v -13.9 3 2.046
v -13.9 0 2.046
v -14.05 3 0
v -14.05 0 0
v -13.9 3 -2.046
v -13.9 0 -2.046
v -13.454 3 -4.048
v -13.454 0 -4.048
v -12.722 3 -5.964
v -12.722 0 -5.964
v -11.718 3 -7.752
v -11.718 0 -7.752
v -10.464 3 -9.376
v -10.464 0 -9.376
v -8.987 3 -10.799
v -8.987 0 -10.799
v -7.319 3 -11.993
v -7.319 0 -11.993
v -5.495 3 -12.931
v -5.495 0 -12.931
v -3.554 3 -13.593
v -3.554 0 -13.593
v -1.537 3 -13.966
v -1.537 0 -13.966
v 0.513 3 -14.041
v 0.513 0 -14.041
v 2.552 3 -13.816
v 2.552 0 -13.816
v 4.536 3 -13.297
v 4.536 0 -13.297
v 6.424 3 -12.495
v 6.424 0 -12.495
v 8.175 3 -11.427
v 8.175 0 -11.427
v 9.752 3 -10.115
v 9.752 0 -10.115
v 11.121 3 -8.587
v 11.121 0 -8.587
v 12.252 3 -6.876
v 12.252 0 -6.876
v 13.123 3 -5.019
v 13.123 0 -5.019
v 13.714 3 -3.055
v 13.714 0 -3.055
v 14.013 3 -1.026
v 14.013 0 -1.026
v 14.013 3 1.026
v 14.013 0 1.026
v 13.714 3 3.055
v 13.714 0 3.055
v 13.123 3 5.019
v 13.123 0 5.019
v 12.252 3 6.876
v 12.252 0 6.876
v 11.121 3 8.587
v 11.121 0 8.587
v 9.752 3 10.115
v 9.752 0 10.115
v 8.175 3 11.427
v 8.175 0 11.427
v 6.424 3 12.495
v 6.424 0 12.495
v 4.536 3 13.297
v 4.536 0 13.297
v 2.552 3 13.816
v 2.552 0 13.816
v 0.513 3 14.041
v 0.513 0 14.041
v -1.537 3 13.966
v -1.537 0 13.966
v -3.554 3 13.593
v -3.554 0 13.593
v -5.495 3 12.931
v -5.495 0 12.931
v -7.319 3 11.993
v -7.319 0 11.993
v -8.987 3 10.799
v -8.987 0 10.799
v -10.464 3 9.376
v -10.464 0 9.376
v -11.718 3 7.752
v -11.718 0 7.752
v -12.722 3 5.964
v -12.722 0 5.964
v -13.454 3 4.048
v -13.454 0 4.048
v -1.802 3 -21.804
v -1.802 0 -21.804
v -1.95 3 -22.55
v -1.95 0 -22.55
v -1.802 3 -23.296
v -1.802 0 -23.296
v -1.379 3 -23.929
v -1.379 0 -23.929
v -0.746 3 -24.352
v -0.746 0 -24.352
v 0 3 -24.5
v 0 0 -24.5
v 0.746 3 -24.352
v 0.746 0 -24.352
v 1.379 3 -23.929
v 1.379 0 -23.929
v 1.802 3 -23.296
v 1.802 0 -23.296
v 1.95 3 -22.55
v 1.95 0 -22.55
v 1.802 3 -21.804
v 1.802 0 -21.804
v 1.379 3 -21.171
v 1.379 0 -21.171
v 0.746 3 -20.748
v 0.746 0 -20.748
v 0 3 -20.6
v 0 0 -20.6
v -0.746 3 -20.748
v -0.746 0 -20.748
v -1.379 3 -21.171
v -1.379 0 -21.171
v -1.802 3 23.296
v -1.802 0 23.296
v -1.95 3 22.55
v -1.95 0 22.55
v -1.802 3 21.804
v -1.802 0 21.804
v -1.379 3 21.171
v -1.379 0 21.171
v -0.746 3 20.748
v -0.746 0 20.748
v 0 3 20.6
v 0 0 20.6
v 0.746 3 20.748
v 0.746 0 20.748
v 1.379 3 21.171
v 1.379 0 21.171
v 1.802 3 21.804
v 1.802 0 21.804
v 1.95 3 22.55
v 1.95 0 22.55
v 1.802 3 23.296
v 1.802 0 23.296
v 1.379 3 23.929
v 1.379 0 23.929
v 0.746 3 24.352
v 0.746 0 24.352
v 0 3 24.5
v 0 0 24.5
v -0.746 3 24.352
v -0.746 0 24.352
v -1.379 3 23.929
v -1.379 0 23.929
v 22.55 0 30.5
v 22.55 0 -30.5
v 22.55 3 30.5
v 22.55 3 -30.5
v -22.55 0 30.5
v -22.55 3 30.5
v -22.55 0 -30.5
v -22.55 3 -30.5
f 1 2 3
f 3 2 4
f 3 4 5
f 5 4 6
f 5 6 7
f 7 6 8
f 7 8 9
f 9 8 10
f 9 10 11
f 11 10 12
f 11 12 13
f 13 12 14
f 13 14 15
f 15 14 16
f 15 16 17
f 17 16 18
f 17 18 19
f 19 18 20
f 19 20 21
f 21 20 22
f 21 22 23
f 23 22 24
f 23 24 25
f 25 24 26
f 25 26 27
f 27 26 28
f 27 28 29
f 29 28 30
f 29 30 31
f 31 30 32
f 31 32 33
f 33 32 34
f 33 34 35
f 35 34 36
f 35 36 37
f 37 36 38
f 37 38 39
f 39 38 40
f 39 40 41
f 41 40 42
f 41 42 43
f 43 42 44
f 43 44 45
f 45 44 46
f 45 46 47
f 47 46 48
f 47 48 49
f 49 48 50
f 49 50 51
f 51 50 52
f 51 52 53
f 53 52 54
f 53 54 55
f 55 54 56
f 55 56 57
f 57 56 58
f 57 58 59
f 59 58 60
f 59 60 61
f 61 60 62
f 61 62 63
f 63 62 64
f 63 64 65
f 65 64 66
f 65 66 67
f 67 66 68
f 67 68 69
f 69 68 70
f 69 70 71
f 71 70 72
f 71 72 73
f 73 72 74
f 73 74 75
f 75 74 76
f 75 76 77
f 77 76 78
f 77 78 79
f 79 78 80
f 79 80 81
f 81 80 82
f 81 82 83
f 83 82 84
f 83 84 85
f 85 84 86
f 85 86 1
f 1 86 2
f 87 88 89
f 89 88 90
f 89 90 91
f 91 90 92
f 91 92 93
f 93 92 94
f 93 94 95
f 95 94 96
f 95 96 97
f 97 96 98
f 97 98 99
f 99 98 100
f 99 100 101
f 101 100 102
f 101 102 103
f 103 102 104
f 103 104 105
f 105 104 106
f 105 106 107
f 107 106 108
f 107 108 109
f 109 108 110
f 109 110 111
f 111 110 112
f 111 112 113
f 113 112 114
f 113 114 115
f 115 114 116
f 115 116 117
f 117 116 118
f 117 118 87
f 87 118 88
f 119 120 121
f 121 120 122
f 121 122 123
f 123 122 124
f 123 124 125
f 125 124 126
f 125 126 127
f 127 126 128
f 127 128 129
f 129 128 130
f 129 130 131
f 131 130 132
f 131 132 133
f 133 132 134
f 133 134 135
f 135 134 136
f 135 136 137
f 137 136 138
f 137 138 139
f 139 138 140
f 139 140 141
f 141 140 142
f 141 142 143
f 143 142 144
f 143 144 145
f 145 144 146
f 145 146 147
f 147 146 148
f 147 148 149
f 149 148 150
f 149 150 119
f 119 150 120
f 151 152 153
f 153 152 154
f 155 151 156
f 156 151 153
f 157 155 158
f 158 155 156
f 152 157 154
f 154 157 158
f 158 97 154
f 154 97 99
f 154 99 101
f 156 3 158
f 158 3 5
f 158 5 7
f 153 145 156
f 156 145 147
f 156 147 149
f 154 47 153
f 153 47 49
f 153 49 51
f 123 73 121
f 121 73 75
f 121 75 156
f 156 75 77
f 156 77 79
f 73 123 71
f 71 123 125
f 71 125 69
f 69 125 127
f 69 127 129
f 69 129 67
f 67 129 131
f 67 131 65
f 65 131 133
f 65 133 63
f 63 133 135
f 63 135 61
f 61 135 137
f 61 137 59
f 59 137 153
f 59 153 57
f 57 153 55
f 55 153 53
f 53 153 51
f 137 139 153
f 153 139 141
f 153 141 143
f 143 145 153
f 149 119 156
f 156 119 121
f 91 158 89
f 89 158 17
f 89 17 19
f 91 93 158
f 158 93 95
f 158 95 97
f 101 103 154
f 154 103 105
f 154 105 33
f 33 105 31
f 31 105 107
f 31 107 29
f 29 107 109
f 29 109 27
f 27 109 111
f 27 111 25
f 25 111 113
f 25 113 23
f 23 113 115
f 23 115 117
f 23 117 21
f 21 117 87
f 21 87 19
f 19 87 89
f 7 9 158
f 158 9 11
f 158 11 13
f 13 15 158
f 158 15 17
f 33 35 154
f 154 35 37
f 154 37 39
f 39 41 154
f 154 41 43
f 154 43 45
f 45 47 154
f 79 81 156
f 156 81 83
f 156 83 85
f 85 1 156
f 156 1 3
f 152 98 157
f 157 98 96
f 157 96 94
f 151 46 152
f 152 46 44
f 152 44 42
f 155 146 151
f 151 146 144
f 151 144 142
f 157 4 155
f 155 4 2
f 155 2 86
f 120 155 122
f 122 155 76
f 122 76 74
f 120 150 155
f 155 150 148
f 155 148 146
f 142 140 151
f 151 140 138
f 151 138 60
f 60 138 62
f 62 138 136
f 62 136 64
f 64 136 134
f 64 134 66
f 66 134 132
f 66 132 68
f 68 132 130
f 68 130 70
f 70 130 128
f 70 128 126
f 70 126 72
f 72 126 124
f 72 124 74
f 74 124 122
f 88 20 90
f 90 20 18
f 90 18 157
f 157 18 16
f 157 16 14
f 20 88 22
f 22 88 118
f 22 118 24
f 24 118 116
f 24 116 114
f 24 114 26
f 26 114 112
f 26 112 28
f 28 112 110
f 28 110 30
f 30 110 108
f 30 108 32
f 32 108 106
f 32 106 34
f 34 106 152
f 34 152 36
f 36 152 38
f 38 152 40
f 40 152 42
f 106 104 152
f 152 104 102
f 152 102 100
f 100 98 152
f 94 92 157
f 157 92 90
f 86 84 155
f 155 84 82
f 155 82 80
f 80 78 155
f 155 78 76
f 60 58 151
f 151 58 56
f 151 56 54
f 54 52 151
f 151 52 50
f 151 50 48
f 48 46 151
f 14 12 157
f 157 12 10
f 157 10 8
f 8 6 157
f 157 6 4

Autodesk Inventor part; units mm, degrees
ref_plane "YZ Plane" through (0, 0, 0) normal (1, 0, 0) x (0, 1, 0)
ref_plane "XZ Plane" through (0, 0, 0) normal (0, 1, 0) x (-1, 0, 0)
ref_plane "XY Plane" through (0, 0, 0) normal (0, 0, 1) x (1, 0, 0)
sketch "Sketch1" plane through (0, 0, 0) normal (0, 1, 0) x (-1, 0, 0)
  circle A0 centre (0, 0) radius 14.05
  circle A1 centre (0, 0) radius 19.55 construction
  circle A2 centre (0, -22.55) radius 1.95
  circle A3 centre (0, 22.55) radius 1.95
  circle A4 centre (0, 22.55) radius 4.95 construction
  circle A5 centre (0, -22.55) radius 4.95 construction
  line L0 (19.55, 27.5) -> (-19.55, 27.5) construction
  line L1 (-19.55, 27.5) -> (-19.55, -27.5) construction
  line L2 (-19.55, -27.5) -> (19.55, -27.5) construction
  line L3 (19.55, -27.5) -> (19.55, 27.5) construction
  line L4 (0, 22.55) -> (0, -22.55) construction
  line L5 (-22.55, 30.5) -> (22.55, 30.5)
  line L6 (22.55, 30.5) -> (22.55, -30.5)
  line L7 (22.55, -30.5) -> (-22.55, -30.5)
  line L8 (-22.55, -30.5) -> (-22.55, 30.5)
  dimension "d0" = 28.1
  dimension "d1" = 5.5
  dimension "d2" = 3.9
  dimension "d3" = 3.9
  dimension "d4" = 22.55
  dimension "d5" = 22.55
  dimension "d6" = 3
  dimension "d7" = 3
  dimension "d8" = 3
extrude "Extrusion1" add sketch "Sketch1" along normal blind 3
equation "\"d5\" = d4"
properties part number "10p_passthrough_profile"
